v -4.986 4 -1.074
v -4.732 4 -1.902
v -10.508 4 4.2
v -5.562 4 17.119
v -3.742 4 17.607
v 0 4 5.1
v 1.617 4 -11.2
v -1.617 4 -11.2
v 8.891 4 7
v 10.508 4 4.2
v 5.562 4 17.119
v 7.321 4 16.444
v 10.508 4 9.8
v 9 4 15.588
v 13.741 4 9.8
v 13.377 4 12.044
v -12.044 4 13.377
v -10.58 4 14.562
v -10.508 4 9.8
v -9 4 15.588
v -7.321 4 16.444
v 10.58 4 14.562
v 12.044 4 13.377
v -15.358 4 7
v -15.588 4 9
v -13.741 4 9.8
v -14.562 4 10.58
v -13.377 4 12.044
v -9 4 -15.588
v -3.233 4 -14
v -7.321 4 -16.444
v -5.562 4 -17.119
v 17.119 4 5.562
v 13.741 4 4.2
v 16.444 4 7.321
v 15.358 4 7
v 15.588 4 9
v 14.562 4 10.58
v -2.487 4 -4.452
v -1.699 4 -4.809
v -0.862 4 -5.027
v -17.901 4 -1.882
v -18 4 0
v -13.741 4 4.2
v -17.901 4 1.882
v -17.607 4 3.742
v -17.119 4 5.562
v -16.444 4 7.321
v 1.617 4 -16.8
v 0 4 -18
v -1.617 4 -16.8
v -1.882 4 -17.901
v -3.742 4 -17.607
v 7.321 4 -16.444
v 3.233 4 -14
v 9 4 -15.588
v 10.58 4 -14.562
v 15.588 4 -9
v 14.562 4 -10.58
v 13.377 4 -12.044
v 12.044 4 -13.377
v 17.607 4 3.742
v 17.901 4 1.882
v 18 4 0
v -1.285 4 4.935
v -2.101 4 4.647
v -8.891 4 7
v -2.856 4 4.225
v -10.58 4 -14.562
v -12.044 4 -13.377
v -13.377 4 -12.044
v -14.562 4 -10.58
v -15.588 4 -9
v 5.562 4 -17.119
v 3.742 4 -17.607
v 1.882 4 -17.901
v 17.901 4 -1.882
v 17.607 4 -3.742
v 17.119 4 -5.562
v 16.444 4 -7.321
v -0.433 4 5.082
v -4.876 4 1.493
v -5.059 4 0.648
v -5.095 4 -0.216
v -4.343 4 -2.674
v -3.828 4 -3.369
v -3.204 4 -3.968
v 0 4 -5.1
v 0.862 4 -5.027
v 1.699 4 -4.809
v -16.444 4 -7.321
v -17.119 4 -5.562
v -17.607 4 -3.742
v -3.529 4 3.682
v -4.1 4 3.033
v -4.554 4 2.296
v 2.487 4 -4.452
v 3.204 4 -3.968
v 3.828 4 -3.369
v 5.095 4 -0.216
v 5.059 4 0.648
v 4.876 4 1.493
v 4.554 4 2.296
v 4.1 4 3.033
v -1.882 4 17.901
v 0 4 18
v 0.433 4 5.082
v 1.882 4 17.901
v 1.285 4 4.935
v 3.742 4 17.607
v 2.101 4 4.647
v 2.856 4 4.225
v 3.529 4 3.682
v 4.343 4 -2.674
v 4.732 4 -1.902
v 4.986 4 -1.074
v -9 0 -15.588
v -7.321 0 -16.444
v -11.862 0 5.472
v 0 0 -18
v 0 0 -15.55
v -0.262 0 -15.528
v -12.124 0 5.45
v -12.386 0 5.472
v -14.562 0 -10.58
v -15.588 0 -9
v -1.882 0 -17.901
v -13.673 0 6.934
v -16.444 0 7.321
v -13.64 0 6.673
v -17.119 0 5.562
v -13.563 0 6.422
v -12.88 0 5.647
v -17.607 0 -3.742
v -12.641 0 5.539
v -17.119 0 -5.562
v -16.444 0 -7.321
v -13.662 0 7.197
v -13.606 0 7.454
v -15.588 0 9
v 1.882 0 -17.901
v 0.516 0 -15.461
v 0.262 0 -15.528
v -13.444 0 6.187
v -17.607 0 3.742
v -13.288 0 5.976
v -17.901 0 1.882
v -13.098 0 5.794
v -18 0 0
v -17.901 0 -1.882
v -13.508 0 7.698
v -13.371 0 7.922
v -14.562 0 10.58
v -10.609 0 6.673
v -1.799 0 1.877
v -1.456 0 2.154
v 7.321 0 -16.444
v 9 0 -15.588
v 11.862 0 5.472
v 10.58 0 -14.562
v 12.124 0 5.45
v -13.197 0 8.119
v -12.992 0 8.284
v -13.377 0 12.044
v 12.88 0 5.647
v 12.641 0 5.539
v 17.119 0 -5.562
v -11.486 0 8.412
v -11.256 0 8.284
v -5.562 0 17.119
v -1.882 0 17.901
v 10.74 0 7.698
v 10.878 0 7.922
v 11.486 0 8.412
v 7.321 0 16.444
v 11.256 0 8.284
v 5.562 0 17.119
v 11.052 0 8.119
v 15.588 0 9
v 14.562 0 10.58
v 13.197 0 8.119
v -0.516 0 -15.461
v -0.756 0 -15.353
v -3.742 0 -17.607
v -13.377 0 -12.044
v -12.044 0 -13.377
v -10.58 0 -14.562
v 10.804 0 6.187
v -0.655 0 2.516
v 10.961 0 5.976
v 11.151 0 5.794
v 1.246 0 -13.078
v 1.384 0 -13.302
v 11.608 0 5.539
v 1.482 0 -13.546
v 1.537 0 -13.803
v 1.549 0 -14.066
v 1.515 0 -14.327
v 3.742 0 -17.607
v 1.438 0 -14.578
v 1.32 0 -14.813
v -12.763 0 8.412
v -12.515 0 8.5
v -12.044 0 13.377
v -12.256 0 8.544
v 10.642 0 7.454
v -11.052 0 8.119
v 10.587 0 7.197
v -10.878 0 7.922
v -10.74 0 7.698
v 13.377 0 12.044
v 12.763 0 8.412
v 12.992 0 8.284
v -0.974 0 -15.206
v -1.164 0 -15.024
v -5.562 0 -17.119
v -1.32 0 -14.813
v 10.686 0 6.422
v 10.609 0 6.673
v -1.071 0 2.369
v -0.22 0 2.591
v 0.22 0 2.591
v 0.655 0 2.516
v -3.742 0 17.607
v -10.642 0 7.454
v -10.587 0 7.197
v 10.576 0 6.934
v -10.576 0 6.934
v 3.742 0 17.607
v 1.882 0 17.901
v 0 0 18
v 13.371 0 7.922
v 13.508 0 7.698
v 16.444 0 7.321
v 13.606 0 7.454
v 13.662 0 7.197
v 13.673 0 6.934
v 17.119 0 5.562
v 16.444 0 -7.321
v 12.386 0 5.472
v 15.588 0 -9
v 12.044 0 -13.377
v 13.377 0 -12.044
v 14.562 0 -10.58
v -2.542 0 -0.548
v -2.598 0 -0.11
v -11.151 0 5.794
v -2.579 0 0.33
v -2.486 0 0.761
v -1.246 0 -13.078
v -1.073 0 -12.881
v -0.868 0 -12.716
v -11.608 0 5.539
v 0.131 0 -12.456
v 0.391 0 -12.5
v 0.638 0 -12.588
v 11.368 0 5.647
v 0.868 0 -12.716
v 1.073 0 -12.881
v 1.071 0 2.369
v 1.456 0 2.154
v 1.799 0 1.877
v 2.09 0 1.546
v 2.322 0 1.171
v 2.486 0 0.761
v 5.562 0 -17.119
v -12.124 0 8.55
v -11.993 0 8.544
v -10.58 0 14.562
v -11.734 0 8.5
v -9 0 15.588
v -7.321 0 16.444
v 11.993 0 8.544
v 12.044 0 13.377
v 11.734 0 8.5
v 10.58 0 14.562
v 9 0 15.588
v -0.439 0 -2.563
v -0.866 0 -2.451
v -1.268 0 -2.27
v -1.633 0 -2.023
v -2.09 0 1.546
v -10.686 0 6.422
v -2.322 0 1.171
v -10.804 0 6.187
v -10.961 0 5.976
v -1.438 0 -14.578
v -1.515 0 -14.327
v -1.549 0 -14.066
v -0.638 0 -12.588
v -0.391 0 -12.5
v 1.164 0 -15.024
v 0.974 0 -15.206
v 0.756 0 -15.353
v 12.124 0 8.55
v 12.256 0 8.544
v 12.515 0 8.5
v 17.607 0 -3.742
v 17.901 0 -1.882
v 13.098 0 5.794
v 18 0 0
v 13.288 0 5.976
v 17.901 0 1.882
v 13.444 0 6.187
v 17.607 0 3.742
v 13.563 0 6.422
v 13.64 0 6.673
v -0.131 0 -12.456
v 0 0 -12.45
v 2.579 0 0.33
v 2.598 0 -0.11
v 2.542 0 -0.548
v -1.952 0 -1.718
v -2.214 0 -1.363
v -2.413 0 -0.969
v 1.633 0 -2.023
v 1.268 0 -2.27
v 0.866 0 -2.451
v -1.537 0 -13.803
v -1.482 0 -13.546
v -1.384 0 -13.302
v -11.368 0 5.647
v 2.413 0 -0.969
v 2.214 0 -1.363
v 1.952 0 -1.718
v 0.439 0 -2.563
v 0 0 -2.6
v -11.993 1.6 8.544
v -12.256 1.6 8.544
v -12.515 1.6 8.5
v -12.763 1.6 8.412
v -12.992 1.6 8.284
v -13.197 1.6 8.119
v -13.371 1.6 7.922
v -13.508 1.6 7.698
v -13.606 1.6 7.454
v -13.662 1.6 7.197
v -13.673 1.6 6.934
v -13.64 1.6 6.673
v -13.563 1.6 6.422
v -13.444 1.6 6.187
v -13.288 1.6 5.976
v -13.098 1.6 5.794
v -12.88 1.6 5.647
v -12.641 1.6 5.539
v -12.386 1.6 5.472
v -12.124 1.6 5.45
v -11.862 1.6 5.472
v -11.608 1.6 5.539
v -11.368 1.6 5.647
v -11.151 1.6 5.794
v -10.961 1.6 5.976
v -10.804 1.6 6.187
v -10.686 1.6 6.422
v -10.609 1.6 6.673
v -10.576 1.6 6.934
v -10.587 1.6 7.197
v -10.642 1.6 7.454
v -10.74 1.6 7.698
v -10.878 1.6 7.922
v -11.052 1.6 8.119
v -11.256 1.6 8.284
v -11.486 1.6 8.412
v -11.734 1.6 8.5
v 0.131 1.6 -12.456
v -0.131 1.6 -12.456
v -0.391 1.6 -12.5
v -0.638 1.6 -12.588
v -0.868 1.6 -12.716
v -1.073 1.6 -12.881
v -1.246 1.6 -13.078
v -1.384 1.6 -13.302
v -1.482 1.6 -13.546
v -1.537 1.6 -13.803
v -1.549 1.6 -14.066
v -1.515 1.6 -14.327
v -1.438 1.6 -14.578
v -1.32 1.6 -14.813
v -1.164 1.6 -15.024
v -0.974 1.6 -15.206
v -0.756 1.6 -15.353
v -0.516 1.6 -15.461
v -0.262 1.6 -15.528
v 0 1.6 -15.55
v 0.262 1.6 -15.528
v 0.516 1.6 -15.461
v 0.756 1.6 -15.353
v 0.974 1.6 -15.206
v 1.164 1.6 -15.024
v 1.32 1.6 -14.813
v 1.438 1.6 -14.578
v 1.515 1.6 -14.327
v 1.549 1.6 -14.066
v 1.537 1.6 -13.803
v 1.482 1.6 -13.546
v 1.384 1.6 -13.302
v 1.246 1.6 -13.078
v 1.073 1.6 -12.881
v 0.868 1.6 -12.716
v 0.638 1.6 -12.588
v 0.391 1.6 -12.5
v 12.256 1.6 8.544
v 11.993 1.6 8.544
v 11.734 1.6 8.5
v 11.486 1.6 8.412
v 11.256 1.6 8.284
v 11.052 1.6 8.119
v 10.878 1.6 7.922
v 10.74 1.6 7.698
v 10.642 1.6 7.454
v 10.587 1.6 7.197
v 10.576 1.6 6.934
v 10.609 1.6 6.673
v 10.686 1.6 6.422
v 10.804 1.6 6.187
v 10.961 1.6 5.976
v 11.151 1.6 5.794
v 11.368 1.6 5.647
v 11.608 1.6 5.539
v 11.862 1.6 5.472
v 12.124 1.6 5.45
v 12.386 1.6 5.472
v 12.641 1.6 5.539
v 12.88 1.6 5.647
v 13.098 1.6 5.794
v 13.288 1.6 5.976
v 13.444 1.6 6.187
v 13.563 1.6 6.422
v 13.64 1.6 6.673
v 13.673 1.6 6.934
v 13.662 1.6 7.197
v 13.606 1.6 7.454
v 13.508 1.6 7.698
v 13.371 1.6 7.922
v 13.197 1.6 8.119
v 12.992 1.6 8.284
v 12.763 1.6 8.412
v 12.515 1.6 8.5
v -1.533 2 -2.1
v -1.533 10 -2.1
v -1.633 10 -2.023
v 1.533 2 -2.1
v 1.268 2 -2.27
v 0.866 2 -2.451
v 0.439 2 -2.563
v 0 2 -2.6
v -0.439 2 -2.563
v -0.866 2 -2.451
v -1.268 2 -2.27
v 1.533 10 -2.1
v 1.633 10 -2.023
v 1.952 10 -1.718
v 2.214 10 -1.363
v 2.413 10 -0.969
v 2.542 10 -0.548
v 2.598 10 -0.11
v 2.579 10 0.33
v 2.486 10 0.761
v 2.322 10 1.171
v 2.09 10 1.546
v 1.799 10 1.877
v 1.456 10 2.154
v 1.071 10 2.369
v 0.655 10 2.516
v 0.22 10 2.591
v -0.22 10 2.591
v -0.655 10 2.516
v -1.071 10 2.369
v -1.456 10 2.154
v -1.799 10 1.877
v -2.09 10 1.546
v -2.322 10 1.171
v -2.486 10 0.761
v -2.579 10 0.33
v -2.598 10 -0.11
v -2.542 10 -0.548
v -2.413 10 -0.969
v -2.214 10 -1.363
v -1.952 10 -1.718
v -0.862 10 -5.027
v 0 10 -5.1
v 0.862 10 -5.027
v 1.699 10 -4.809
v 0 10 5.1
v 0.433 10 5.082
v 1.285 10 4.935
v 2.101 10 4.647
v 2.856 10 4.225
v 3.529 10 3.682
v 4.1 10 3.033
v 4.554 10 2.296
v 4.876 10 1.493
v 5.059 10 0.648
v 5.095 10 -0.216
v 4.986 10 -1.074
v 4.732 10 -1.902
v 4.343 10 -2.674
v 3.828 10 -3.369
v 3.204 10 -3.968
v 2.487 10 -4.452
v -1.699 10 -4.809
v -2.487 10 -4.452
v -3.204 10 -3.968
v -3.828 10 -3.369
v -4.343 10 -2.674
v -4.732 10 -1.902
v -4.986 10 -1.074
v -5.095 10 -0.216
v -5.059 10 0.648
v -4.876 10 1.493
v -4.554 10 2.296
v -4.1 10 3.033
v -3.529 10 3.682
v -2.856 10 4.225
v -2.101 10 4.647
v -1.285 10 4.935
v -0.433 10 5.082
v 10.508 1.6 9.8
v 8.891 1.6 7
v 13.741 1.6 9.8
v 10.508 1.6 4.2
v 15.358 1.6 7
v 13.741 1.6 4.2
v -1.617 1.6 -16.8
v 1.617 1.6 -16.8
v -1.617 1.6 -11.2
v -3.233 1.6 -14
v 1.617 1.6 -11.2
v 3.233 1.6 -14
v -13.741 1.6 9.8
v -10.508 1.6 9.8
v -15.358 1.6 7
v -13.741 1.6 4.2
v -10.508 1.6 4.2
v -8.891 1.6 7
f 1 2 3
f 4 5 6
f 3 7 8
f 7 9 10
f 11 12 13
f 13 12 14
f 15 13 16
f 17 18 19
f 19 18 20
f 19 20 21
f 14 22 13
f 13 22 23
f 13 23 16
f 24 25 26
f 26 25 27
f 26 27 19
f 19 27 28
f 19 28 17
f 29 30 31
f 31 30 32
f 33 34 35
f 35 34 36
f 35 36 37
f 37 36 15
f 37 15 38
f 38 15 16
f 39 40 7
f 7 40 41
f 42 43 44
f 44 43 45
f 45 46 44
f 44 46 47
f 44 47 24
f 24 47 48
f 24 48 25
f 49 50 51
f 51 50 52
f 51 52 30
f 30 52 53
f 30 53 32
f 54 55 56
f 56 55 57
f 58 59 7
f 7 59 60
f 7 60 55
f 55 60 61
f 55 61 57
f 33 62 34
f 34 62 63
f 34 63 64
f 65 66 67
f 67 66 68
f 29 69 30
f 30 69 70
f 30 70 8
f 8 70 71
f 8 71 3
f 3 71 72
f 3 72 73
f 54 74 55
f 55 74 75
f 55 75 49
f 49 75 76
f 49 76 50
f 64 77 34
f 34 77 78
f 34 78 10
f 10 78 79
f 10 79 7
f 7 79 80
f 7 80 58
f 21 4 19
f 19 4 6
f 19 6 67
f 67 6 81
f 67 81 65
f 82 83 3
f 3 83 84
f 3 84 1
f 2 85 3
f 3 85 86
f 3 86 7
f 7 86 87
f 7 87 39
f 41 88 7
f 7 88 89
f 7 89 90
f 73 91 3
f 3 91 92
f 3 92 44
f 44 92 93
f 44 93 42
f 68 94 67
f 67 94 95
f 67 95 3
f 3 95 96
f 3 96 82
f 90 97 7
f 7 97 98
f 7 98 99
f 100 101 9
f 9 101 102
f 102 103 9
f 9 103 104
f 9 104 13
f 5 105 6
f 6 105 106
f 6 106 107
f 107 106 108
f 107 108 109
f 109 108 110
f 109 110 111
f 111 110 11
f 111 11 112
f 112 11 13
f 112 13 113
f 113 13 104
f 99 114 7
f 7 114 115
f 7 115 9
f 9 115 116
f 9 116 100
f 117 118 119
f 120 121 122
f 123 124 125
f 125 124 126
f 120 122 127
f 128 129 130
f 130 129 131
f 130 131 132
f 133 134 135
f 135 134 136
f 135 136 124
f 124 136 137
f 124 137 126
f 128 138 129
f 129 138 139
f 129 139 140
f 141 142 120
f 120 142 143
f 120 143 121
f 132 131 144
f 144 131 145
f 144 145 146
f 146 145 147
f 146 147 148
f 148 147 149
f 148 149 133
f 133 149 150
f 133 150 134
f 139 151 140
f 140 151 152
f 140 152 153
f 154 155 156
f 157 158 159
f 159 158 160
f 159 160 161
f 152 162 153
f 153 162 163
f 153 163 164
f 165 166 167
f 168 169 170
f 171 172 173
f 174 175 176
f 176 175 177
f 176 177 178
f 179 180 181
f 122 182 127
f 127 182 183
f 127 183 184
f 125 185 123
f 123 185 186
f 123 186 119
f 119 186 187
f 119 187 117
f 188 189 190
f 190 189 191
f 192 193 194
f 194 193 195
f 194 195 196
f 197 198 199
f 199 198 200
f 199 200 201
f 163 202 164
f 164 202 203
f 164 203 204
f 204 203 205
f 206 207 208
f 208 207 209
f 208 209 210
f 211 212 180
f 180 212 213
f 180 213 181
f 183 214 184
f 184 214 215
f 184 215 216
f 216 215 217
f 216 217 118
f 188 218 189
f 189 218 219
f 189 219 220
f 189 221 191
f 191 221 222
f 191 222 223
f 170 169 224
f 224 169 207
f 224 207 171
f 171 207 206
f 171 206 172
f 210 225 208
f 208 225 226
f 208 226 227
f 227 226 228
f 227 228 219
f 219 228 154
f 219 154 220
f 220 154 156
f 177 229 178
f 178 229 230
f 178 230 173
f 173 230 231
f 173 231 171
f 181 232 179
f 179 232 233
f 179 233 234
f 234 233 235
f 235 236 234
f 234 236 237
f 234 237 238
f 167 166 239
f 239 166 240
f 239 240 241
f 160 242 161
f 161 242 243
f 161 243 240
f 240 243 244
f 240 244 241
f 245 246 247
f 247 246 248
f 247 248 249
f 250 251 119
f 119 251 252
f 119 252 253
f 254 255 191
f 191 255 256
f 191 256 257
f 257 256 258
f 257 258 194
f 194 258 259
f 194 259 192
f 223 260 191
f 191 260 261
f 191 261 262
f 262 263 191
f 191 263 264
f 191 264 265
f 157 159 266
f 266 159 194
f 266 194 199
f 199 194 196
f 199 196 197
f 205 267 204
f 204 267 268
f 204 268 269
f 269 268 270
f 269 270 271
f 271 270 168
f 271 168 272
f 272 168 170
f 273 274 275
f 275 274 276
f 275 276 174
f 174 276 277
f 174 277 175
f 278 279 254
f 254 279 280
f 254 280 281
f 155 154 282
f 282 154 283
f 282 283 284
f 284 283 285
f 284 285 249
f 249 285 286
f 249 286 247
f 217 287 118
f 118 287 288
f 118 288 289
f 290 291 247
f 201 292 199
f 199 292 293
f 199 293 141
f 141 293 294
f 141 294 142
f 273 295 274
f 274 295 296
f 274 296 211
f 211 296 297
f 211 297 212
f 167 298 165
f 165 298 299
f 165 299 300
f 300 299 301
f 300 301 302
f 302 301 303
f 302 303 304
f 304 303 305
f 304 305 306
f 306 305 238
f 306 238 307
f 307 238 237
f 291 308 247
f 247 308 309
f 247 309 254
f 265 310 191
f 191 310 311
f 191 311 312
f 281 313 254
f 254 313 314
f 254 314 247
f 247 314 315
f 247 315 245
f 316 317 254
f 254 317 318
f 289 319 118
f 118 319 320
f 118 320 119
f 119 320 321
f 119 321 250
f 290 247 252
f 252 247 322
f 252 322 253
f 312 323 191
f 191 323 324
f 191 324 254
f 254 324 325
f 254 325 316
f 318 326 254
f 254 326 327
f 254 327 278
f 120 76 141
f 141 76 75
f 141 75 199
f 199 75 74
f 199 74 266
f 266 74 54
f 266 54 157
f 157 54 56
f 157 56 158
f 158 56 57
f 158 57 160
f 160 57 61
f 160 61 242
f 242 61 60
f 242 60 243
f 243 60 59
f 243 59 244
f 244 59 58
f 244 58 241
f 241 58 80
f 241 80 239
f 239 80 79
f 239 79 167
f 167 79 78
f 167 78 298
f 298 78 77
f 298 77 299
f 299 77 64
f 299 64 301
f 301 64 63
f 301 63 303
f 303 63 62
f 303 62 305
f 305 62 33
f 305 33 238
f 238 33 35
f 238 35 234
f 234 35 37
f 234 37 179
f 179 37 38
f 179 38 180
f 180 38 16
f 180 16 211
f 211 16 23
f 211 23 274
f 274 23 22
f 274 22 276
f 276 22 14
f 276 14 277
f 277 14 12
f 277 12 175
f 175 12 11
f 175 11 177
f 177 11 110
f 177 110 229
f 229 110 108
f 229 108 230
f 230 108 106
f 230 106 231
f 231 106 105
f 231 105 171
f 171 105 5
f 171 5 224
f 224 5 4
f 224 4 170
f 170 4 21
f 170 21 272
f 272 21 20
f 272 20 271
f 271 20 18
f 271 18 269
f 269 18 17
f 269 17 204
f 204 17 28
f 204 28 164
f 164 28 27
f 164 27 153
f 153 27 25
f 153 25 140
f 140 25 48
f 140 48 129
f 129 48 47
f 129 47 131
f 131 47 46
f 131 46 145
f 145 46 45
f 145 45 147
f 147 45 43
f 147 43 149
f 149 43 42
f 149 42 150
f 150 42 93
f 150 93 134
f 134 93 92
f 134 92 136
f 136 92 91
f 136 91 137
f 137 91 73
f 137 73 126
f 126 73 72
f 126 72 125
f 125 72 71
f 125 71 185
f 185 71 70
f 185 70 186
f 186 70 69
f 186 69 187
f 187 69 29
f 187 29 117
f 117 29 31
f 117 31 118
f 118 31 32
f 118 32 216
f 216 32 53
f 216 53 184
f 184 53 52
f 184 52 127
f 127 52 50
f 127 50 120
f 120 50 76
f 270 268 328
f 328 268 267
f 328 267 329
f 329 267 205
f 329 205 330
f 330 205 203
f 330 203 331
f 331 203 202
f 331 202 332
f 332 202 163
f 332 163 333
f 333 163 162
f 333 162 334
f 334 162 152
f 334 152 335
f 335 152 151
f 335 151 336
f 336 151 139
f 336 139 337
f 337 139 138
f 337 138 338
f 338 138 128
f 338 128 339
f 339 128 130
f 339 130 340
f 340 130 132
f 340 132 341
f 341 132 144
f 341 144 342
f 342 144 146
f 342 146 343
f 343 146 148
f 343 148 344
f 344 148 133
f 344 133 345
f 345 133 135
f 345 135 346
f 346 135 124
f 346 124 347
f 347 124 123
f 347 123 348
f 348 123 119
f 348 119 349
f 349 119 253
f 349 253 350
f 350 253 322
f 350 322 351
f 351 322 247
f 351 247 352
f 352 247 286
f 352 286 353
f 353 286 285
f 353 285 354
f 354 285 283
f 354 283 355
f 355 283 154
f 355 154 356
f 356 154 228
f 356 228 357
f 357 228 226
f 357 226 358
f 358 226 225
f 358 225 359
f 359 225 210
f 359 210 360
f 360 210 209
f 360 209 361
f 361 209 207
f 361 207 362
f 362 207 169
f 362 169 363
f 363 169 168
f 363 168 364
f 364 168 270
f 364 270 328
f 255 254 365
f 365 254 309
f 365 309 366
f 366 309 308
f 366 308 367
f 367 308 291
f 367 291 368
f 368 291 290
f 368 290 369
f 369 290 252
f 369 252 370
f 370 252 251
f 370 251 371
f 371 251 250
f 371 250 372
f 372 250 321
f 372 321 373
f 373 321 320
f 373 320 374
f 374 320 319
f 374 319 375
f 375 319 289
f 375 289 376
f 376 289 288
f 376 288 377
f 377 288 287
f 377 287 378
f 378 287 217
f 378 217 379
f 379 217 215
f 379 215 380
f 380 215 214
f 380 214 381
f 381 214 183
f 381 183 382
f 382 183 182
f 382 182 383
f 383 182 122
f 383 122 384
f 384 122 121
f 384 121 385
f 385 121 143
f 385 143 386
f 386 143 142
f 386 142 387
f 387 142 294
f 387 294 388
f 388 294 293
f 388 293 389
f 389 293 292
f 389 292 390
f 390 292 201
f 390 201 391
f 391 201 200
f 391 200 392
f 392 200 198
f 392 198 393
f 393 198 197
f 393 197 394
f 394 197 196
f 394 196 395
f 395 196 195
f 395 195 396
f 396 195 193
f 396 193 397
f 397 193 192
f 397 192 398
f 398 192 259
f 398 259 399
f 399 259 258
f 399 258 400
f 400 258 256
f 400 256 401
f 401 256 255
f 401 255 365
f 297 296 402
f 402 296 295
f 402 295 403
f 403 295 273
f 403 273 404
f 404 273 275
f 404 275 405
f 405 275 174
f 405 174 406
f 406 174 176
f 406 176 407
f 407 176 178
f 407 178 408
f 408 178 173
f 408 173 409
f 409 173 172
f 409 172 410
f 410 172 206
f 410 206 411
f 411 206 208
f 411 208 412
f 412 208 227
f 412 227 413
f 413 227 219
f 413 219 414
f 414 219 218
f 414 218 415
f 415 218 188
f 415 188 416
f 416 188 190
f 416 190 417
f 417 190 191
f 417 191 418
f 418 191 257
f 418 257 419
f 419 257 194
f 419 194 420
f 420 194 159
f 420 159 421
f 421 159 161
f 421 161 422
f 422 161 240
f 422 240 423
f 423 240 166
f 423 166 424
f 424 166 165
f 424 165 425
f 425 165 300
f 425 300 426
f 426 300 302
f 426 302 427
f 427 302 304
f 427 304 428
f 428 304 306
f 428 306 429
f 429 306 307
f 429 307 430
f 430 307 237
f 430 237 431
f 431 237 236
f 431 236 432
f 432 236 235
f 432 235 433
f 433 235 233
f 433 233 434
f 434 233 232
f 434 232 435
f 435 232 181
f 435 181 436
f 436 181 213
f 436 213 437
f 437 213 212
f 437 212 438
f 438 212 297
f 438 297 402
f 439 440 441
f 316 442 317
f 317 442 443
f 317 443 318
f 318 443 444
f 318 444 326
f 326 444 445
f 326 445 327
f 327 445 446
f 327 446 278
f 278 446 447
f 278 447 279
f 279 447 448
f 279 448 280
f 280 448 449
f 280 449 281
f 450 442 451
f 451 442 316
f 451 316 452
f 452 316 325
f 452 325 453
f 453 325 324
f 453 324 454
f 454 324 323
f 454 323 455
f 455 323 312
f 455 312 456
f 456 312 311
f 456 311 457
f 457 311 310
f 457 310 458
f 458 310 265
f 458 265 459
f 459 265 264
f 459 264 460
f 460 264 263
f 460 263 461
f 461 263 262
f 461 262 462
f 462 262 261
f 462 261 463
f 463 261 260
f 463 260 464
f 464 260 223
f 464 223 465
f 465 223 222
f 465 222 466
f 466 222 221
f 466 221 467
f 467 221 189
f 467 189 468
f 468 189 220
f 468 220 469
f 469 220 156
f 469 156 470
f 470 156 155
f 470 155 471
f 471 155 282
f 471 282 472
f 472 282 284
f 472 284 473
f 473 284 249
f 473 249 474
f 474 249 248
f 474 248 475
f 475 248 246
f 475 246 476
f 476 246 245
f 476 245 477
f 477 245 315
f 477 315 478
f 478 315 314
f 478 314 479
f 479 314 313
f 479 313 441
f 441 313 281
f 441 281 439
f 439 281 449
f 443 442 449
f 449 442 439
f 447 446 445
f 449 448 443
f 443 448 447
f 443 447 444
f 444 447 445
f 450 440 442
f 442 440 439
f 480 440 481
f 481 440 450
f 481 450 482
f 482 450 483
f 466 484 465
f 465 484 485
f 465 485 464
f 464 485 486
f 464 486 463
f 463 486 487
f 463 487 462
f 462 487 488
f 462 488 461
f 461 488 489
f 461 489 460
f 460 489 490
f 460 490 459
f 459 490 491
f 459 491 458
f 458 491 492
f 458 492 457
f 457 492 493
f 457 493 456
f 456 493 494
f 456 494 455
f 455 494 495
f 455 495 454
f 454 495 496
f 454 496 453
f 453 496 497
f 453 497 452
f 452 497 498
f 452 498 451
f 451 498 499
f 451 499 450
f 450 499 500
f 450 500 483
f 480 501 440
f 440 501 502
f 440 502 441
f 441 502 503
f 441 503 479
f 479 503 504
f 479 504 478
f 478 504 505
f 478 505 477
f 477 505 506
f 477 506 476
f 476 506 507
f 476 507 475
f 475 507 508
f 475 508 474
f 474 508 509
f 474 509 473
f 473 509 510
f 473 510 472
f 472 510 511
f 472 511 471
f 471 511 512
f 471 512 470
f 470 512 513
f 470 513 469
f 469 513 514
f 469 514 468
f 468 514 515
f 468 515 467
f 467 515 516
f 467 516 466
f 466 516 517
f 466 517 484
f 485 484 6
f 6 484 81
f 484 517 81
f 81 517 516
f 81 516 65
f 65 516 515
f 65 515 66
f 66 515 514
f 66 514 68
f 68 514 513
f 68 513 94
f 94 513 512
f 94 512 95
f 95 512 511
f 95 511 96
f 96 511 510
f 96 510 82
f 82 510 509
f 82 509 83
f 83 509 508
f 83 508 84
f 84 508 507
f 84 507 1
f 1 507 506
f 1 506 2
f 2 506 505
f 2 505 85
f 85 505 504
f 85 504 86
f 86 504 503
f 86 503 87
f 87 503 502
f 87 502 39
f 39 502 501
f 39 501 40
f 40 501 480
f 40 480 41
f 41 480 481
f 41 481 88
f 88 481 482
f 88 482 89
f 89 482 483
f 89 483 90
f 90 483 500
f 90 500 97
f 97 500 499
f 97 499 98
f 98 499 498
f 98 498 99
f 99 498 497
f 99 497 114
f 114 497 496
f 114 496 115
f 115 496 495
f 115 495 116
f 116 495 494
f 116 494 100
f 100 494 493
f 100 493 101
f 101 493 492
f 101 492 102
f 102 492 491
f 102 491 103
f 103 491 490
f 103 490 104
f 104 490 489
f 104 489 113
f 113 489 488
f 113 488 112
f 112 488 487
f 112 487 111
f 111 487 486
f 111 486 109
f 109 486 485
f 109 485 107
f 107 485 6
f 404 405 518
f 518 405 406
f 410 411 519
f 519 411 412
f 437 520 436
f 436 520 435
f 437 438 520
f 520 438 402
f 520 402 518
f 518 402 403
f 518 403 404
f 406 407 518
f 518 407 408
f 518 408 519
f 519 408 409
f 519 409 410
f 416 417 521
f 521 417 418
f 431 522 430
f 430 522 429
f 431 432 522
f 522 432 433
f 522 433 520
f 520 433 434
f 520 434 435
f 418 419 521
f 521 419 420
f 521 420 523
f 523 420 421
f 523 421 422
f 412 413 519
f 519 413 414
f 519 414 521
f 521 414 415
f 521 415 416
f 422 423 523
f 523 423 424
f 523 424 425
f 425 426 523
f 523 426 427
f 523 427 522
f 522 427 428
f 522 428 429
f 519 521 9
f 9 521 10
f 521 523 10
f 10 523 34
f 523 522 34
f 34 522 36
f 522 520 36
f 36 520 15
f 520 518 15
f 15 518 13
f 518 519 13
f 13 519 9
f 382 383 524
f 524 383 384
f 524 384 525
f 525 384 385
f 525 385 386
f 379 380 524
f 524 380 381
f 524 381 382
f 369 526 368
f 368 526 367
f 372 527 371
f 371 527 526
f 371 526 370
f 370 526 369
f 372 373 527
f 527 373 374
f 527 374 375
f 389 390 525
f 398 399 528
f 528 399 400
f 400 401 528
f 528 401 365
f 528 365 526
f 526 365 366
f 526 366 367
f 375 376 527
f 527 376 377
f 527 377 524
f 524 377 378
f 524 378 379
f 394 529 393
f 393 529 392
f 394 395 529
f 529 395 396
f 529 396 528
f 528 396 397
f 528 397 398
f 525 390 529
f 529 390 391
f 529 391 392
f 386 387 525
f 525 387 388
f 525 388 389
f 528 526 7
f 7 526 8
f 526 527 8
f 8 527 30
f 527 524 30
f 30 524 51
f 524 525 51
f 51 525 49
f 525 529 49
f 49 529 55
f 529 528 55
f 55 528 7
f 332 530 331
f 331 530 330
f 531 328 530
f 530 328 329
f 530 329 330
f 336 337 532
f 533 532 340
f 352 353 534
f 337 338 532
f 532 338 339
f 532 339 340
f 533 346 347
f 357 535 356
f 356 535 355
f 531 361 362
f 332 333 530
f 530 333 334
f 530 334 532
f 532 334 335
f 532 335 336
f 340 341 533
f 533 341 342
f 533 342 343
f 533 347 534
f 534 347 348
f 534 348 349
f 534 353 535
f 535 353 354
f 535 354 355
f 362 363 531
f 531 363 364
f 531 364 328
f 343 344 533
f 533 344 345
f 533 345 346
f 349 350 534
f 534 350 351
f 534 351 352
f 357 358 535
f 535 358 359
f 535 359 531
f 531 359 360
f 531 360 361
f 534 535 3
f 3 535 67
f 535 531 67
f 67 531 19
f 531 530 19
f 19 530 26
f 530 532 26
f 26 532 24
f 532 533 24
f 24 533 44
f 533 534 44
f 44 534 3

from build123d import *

# Parameters (mm, degrees)
SKETCH_1_R          = 18
SKETCH_1_R_2        = 1.55
EXTRUDE_1_DEPTH     = 4
SKETCH_3_R          = 2.6
CUT_EXTRUDE_2_DEPTH = 2
CUT_EXTRUDE_3_DEPTH = 26.53429067
SKETCH_5_R          = 5.1
EXTRUDE_2_DEPTH     = 6
CUT_EXTRUDE_START   = 2.4
SKETCH_2_R          = 1.55
CUT_EXTRUDE_4_DEPTH = 2.4


with BuildPart() as part:
    # 草图1 → 凸台-拉伸1 (new body)
    with BuildSketch(Plane(origin=(0, 0, 0), x_dir=(1, 0, 0), z_dir=(0, 1, 0))):
        Circle(SKETCH_1_R)
        with Locations((-12.124355653, -7)):
            Circle(SKETCH_1_R_2, mode=Mode.SUBTRACT)
        with Locations((0, 14)):
            Circle(SKETCH_1_R_2, mode=Mode.SUBTRACT)
        with Locations((12.124355653, -7)):
            Circle(SKETCH_1_R_2, mode=Mode.SUBTRACT)
    extrude(amount=EXTRUDE_1_DEPTH)

    # 草图3 → 切除-拉伸2 (cut)
    with BuildSketch(Plane.XZ):
        Circle(SKETCH_3_R)
    extrude(amount=-CUT_EXTRUDE_2_DEPTH, mode=Mode.SUBTRACT)

    # 草图4 → 切除-拉伸3 (cut, through all)
    with BuildSketch(Plane.XZ.offset(-2)):
        with BuildLine():
            ThreePointArc((2.6, 0), (-1.177768117, 2.317943542), (-1.532970972, -2.1))
            Line((-1.532970972, -2.1), (1.532970972, -2.1))
            ThreePointArc((1.532970972, -2.1), (2.317943542, -1.177768117), (2.6, 0))
        make_face()
    extrude(amount=-CUT_EXTRUDE_3_DEPTH, mode=Mode.SUBTRACT)

    # 草图5 → 凸台-拉伸2 (add)
    with BuildSketch(Plane(origin=(0, 4, 0), x_dir=(1, 0, 0), z_dir=(0, 1, 0))):
        Circle(SKETCH_5_R)
        with BuildLine():
            Line((-1.532970972, 2.1), (1.532970972, 2.1))
            ThreePointArc((1.532970972, 2.1), (0, -2.6), (-1.532970972, 2.1))
        make_face(mode=Mode.SUBTRACT)
    extrude(amount=EXTRUDE_2_DEPTH)

    # 草图2 → 切除-拉伸4 (cut)
    # profile 1 of 3: a face of its own
    with BuildSketch(Plane.XZ.offset(-4).offset(CUT_EXTRUDE_START)):
        Polygon((-8.891194146, 7), (-10.507774899, 9.8), (-13.740936407, 9.8), (-15.35751716, 7), (-13.740936407, 4.2), (-10.507774899, 4.2), align=None)
        with Locations((-12.124355653, 7)):
            Circle(SKETCH_2_R, mode=Mode.SUBTRACT)
    # profile 2 of 3: a face of its own
    with BuildSketch(Plane.XZ.offset(-4).offset(CUT_EXTRUDE_START)):
        Polygon((-1.616580754, -11.2), (-3.233161507, -14), (-1.616580754, -16.8), (1.616580754, -16.8), (3.233161507, -14), (1.616580754, -11.2), align=None)
        with Locations((0, -14)):
            Circle(SKETCH_2_R, mode=Mode.SUBTRACT)
    # profile 3 of 3: a face of its own
    with BuildSketch(Plane.XZ.offset(-4).offset(CUT_EXTRUDE_START)):
        Polygon((10.507774899, 4.2), (13.740936407, 4.2), (15.35751716, 7), (13.740936407, 9.8), (10.507774899, 9.8), (8.891194146, 7), align=None)
        with Locations((12.124355653, 7)):
            Circle(SKETCH_2_R, mode=Mode.SUBTRACT)
    extrude(amount=-CUT_EXTRUDE_4_DEPTH, mode=Mode.SUBTRACT)


solid = part.part
